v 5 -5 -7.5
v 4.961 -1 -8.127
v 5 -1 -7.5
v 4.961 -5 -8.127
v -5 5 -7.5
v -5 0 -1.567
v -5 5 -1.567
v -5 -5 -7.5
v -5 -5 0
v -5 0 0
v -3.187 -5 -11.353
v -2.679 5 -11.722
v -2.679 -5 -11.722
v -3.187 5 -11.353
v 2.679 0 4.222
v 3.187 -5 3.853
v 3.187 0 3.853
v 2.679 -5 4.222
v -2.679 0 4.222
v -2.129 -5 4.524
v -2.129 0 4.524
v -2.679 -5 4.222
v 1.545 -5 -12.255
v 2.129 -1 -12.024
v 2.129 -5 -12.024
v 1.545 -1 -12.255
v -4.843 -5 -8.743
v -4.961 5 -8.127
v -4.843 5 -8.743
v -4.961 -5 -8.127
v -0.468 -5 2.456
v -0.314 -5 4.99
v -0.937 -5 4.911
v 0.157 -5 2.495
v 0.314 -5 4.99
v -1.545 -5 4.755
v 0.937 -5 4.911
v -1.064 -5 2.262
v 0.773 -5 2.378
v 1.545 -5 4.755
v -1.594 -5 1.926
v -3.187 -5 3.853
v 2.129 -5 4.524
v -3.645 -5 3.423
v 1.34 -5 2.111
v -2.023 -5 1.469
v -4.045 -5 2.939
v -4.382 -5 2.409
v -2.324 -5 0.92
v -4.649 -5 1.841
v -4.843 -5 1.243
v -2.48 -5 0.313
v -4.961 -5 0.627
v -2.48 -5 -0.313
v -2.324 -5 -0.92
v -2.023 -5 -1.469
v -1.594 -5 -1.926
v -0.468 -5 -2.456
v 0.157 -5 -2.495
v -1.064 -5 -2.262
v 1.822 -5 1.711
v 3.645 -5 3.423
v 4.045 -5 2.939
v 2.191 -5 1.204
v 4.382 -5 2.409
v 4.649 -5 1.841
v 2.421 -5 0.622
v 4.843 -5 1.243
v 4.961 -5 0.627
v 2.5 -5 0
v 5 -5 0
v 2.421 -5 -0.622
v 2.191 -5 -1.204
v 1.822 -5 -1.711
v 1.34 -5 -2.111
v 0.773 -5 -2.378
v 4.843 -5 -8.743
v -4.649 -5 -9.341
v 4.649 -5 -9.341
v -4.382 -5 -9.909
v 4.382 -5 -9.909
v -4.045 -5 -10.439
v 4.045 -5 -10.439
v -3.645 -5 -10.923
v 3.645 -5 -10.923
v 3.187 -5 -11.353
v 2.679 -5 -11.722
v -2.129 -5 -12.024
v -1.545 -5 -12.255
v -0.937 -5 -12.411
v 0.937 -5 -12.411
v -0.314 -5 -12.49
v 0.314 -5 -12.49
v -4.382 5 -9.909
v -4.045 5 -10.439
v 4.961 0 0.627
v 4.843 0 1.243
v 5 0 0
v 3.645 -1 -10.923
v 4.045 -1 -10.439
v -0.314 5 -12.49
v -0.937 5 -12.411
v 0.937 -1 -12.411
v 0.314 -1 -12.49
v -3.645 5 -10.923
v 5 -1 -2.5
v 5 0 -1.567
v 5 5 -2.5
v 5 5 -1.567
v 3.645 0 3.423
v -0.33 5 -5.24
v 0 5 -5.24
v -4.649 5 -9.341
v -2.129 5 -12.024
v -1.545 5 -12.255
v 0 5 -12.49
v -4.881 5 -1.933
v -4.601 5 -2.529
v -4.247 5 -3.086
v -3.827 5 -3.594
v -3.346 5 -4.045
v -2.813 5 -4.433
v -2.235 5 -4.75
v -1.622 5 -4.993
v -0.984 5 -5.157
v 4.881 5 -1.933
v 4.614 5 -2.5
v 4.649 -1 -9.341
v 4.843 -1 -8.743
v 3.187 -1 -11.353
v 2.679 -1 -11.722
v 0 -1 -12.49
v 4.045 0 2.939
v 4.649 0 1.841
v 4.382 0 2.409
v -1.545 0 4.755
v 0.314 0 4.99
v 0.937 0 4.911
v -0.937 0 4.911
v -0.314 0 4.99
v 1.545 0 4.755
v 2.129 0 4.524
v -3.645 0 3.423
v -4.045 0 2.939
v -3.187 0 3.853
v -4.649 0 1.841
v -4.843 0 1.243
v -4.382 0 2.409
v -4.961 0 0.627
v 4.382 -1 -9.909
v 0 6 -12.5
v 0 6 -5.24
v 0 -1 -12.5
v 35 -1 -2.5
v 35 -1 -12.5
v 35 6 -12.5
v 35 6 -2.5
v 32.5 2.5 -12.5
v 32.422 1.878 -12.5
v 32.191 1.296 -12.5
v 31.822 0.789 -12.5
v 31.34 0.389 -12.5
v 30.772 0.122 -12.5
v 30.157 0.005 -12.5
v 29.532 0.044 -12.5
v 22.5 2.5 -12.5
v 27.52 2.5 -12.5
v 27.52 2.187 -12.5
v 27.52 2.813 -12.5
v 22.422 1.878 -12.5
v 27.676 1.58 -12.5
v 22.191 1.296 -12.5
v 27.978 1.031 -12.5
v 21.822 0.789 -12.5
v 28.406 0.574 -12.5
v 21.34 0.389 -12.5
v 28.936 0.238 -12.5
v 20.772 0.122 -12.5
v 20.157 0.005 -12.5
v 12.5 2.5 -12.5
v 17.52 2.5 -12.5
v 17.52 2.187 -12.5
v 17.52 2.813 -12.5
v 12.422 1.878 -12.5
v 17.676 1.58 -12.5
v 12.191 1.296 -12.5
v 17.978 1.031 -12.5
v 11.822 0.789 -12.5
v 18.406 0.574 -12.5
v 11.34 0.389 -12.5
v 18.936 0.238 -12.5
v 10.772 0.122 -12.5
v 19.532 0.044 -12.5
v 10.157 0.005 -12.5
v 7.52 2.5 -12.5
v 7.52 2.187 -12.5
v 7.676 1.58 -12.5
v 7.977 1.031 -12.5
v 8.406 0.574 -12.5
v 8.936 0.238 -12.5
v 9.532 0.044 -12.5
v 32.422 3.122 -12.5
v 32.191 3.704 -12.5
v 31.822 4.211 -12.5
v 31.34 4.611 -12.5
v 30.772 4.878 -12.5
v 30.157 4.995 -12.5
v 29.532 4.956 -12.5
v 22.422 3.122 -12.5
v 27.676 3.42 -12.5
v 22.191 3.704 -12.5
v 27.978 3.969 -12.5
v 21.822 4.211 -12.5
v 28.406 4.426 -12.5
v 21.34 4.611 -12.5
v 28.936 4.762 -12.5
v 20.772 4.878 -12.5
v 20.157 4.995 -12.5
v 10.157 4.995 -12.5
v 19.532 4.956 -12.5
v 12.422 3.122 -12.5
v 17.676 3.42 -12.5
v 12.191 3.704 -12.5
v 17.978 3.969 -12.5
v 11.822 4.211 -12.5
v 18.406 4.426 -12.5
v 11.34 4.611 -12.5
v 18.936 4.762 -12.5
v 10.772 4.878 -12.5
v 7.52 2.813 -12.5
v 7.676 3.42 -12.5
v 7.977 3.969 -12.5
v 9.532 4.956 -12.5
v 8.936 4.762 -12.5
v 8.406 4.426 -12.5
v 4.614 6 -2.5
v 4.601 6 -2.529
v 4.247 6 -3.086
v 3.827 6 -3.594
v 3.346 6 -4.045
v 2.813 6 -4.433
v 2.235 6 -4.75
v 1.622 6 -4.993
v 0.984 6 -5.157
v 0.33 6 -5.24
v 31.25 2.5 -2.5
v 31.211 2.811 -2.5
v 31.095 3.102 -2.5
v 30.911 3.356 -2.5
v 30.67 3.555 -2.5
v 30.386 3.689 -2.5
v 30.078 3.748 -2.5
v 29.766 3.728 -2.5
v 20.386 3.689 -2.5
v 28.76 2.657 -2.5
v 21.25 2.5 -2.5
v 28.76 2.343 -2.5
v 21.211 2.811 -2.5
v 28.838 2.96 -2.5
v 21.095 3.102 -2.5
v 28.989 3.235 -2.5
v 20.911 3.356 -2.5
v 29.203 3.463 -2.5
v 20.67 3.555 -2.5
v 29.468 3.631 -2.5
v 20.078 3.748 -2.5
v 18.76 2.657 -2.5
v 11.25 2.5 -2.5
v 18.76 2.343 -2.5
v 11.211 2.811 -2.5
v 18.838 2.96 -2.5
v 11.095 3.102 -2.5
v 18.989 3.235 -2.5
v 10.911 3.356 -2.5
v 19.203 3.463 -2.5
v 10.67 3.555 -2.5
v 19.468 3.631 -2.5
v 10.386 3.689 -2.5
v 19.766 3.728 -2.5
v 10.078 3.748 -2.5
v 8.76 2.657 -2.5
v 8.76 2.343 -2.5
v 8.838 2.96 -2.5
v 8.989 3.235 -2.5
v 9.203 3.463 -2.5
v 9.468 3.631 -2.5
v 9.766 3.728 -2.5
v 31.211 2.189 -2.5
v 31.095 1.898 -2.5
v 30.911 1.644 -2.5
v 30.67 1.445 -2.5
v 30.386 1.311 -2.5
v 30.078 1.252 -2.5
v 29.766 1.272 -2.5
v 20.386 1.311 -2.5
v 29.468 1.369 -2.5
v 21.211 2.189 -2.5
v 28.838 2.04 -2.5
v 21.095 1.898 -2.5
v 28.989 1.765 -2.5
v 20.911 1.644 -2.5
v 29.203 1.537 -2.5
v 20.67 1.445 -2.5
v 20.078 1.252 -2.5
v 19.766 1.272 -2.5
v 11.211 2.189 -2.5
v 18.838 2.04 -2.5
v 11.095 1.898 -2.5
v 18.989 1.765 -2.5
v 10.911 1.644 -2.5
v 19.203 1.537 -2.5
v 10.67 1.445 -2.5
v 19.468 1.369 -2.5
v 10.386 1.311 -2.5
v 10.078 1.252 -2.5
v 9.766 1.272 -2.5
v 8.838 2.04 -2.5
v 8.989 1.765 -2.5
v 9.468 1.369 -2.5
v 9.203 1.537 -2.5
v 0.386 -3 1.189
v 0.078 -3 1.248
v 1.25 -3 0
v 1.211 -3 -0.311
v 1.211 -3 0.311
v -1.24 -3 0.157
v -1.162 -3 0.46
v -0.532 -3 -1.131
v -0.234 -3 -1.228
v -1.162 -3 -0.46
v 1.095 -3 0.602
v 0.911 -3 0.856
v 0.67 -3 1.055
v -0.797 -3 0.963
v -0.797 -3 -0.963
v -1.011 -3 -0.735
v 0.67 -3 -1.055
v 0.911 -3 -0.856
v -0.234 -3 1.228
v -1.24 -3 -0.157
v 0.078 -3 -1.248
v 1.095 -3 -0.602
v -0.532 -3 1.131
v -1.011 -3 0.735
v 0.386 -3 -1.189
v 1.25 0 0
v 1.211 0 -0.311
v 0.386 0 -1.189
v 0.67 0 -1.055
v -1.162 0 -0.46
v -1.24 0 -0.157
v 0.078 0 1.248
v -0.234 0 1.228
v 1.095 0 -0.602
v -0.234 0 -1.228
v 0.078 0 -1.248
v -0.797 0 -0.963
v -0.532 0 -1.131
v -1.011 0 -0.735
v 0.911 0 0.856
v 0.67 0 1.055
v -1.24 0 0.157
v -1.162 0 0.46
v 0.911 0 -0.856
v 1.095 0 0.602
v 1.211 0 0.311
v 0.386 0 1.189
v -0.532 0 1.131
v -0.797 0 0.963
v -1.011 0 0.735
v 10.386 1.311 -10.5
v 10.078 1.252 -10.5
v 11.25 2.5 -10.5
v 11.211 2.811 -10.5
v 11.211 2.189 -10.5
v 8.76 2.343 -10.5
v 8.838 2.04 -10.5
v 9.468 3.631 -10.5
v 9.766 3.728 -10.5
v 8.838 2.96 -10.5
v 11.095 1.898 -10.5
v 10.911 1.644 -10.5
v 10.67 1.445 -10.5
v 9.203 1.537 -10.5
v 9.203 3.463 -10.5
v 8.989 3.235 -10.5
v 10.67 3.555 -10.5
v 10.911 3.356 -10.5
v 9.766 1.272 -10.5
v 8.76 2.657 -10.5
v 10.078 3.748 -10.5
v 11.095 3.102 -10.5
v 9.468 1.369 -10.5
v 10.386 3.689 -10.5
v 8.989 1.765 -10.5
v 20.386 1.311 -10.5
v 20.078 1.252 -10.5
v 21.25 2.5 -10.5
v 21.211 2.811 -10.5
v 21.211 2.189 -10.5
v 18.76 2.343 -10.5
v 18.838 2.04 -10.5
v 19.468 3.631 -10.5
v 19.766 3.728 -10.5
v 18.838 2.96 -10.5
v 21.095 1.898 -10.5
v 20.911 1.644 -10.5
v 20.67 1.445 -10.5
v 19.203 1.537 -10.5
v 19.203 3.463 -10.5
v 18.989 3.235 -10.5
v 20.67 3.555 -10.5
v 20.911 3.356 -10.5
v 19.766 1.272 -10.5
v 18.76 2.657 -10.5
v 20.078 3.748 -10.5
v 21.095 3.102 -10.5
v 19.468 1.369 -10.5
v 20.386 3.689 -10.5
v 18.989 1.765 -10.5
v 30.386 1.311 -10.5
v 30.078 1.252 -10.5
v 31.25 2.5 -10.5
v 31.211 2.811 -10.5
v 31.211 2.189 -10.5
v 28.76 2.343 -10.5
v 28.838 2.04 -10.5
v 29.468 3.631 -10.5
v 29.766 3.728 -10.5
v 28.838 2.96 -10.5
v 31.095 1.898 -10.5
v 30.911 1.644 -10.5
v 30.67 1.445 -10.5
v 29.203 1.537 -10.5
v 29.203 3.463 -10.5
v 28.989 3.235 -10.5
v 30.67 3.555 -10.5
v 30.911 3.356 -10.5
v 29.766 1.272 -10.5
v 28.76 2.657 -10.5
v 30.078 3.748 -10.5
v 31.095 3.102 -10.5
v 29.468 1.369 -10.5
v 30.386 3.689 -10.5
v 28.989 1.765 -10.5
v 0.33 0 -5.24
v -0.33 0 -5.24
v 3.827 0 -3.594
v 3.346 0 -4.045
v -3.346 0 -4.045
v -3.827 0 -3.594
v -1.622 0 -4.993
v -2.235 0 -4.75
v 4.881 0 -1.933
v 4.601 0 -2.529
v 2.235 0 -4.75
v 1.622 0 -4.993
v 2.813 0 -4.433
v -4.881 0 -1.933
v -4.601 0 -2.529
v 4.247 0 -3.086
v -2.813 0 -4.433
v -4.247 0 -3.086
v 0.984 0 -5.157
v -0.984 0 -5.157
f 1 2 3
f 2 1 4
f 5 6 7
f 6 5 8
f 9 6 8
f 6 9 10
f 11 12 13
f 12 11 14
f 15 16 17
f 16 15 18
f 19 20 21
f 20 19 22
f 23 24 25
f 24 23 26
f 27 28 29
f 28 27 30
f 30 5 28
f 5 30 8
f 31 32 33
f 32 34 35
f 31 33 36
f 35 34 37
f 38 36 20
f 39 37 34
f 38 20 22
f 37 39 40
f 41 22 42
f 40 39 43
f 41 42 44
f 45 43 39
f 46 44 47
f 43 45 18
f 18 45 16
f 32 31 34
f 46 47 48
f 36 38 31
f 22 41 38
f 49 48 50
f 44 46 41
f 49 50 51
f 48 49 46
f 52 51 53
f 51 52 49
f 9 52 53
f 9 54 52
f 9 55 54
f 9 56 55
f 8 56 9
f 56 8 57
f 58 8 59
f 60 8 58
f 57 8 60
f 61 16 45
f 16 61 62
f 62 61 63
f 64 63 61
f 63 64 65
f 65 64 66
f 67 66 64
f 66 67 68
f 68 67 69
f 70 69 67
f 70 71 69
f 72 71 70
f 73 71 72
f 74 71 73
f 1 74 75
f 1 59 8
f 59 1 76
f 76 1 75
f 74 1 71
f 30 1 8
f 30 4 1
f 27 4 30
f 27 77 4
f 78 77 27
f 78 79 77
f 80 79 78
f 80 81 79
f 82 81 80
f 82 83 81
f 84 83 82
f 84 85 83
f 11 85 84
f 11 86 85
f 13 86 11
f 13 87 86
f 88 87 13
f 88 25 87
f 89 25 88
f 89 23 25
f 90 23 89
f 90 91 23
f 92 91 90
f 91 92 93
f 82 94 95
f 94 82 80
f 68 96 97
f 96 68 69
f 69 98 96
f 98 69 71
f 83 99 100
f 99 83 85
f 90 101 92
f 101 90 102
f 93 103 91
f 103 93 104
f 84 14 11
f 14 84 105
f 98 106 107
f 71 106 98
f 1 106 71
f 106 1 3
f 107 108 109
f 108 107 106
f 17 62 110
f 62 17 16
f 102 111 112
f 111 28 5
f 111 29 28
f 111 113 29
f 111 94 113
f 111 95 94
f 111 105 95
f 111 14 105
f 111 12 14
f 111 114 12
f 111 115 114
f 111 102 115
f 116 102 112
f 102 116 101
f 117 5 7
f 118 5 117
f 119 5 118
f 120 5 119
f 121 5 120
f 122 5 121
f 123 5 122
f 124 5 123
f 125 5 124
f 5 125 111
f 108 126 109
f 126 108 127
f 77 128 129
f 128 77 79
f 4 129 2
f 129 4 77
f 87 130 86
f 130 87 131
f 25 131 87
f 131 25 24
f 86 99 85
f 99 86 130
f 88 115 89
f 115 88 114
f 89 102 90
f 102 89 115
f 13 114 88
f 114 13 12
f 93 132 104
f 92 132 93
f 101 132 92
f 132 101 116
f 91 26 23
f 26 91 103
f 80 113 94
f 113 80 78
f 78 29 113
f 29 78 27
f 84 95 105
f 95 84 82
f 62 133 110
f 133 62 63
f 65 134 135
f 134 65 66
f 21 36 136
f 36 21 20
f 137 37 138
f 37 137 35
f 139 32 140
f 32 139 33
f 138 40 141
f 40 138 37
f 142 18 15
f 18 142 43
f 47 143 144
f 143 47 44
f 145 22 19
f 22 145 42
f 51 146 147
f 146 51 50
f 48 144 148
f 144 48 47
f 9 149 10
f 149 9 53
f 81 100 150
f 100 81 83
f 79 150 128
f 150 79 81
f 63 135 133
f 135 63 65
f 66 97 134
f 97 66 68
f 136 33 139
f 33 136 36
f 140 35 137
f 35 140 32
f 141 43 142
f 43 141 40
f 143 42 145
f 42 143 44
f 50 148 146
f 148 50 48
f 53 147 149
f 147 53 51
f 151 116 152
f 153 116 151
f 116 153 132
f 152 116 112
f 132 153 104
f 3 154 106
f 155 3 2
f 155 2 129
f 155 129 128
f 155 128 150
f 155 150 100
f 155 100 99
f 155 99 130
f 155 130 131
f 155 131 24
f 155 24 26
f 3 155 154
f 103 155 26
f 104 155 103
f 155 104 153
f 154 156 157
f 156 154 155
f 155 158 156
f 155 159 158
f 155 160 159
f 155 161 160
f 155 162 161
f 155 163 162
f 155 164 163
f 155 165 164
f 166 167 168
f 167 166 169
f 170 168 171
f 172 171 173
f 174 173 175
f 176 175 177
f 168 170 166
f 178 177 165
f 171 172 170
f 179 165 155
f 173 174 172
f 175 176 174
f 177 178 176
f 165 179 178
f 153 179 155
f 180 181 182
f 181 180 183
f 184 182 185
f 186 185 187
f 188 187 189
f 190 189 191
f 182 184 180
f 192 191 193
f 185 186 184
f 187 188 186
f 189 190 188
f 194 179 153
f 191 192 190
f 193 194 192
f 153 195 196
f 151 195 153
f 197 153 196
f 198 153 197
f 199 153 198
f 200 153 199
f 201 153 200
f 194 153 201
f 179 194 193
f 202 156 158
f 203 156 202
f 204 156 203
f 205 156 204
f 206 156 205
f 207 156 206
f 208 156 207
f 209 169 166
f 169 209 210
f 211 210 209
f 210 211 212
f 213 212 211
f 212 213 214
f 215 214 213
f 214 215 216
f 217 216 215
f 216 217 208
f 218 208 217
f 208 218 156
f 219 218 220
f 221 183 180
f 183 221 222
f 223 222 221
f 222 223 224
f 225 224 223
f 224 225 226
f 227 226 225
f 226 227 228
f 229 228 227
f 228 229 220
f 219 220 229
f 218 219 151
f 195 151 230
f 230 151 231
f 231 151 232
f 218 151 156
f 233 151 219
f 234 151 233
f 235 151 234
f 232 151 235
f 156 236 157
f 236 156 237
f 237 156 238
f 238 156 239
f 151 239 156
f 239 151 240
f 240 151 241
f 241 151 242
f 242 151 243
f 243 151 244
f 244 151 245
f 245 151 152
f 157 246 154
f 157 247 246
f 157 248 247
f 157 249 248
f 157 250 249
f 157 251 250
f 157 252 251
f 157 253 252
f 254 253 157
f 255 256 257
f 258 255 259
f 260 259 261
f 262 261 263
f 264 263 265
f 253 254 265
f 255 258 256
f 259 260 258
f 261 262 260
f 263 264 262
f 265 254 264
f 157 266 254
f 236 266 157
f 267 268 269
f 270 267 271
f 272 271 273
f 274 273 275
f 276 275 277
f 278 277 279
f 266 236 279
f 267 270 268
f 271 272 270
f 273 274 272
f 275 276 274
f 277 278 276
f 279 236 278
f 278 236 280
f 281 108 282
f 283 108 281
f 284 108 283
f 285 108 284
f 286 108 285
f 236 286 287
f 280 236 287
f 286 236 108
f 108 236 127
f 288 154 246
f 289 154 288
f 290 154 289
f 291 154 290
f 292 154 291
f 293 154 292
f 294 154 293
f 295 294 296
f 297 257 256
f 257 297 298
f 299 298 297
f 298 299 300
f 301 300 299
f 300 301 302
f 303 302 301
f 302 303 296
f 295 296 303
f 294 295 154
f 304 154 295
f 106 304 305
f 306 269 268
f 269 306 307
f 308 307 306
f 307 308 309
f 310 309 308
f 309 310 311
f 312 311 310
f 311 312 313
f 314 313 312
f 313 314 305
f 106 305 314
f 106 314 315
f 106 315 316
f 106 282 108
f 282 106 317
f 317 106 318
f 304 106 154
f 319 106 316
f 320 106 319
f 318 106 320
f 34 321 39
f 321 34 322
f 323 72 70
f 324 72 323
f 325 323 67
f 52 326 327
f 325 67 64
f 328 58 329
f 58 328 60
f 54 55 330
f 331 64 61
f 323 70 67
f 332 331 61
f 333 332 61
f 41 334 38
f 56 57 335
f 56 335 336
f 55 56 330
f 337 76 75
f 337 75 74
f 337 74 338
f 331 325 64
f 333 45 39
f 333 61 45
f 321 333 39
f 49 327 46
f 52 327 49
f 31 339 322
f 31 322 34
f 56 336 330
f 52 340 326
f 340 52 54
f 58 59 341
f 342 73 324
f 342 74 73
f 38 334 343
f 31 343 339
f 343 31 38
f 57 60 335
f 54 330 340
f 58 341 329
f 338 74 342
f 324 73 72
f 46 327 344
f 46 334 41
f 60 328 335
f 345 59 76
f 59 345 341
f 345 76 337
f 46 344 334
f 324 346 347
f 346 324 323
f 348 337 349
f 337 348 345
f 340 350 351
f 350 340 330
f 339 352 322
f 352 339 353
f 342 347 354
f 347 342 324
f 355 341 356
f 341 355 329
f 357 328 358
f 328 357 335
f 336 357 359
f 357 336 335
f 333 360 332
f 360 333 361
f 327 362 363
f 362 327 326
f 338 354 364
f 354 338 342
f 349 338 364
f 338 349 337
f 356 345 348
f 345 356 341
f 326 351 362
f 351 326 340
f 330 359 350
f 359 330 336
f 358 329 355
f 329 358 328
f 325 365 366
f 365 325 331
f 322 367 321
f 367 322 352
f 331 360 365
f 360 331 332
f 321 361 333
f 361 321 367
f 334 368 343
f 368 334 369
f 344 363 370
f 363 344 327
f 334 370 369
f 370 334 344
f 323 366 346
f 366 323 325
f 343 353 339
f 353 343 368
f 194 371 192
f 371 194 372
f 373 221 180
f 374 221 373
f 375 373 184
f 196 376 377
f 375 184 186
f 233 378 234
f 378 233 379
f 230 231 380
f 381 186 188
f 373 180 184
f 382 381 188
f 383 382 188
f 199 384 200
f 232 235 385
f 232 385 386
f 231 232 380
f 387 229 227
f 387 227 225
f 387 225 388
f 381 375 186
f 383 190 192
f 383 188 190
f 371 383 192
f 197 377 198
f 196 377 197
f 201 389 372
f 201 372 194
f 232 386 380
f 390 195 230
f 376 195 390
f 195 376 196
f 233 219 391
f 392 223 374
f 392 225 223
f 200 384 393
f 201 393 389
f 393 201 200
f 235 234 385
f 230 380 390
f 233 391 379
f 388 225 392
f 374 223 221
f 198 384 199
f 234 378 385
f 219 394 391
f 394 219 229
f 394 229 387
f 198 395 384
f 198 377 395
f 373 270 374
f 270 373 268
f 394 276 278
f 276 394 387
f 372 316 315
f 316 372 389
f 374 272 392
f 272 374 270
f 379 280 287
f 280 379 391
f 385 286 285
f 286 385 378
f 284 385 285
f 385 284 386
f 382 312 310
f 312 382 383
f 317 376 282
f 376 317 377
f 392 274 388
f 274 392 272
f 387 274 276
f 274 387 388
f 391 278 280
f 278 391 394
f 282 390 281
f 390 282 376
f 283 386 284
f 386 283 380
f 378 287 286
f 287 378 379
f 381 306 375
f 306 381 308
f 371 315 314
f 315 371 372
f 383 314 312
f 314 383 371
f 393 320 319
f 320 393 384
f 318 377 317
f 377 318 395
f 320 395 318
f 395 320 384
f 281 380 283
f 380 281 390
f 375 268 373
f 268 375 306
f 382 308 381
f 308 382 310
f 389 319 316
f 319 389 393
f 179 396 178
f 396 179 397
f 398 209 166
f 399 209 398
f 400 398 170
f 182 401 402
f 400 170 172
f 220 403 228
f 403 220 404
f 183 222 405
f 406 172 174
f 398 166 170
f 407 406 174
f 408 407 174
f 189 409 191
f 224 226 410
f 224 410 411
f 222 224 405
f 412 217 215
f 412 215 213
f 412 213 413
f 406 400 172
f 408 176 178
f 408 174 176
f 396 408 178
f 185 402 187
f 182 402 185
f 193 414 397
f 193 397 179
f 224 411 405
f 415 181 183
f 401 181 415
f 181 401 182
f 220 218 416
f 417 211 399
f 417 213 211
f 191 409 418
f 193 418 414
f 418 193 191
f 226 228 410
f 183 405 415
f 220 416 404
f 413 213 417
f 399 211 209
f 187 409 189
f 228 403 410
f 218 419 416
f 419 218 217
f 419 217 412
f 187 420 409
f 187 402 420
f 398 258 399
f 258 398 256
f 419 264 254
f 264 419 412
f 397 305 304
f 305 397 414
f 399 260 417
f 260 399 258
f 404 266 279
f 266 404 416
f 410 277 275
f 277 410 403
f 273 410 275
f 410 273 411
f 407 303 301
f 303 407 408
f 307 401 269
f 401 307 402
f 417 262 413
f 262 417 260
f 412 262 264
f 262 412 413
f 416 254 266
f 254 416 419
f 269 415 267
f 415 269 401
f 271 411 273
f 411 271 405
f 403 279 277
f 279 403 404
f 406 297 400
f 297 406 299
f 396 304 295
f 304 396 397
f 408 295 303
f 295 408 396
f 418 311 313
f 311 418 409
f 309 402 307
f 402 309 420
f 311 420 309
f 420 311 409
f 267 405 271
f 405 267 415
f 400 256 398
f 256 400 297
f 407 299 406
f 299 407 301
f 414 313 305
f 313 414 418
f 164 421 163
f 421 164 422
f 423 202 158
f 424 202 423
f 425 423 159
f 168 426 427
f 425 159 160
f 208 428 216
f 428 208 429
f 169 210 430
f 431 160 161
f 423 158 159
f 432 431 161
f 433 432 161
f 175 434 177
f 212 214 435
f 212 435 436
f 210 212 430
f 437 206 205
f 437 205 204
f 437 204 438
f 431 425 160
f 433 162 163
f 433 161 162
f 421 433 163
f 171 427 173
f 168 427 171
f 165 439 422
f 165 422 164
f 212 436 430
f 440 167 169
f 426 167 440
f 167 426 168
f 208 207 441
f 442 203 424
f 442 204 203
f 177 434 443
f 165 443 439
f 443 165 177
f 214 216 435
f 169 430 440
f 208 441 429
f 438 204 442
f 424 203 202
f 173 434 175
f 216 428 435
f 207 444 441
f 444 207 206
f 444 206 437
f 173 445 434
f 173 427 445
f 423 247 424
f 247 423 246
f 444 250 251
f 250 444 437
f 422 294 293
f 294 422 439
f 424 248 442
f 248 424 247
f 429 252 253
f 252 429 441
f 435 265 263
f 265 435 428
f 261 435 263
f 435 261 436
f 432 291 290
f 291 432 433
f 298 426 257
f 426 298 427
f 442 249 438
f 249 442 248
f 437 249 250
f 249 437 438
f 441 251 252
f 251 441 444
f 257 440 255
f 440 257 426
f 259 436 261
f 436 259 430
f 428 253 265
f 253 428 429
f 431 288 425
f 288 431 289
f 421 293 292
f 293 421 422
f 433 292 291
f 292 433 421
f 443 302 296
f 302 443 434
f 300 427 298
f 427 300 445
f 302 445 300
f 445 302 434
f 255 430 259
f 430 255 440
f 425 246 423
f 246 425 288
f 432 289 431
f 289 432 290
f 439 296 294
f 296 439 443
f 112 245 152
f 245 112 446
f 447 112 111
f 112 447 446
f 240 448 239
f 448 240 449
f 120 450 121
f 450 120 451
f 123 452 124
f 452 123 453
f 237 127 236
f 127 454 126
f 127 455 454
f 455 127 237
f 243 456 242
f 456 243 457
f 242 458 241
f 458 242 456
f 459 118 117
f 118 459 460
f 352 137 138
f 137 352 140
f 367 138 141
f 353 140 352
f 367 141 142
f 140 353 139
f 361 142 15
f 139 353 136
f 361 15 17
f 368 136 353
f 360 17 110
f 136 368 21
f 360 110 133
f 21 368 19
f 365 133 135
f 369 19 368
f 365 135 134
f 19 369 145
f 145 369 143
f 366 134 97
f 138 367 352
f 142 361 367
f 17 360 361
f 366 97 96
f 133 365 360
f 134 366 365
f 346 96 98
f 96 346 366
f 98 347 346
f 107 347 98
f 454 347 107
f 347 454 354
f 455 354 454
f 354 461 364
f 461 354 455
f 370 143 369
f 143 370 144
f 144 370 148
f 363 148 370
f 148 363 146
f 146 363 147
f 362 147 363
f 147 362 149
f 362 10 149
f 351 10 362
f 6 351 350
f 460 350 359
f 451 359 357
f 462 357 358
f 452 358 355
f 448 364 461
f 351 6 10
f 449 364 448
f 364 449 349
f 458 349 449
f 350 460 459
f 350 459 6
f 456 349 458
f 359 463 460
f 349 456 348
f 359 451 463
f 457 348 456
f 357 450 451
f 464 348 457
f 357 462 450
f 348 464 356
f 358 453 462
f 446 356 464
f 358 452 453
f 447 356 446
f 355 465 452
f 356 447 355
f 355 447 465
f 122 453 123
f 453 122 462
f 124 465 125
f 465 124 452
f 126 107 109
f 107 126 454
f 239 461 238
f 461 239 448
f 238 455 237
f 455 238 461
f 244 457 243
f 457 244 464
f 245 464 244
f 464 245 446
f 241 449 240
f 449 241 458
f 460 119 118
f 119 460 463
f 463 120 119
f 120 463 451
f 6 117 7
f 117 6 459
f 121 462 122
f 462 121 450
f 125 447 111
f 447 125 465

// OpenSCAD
// file: openscad-extra/src/countersink.scad
/*
Countersink depression for tapered screw heads.
*/

module make_countersink(d1=0, d2=0, h=0, outer=10, inner=0, $fn=25){
    /*
    d1 = shaft diameter
    d2 = head diameter
    h = height of taper
    outer = height of head mass
    inner = height of shaft mass, including taper
    */
    default_taper_height = 2;
    d1 = d1 ? d1 : 2.5;
    d2 = d2 ? d2 : 5;
    h = h ? h : default_taper_height;
    inner = (inner ? inner : 10) - default_taper_height;
    
    translate([0, 0, -default_taper_height/2])
    union(){
        
        // taper
        cylinder(d1=d1, d2=d2, h=h, center=true, $fn=$fn);
    
        // big top
    	translate([0, 0, h/2])
    	cylinder(d=d2, h=outer, center=false, $fn=$fn);
        
    	// lower bottom
    	translate([0, 0, -h/2-inner])
    	cylinder(d=d1, h=inner, center=false, $fn=$fn);
	}
}

make_countersink(inner=10);

color("blue")
translate([0,2,0])
cylinder(d=2.5, h=20, center=true, $fn=100);
// file: leg_spring_hinge_extender.scad
use <openscad-extra/src/countersink.scad>;

module leg_spring_hinge_extender(){
    bar_length = 35;
    bar_height = 5+5;
    
    difference(){
        union(){
            // main mass
            hull()
            for(i=[0:1])
            translate([0,(5/2 + (bar_height)/2)*i,0])
            cylinder(d=10, h=10, center=true, $fn=50);
            
            // mount bar
            translate([bar_length/2, bar_height - (bar_height-5)/2, -5/2])
            cube([bar_length, bar_height, 5+2], center=true);
        }
        
        // axle hole
        translate([0,0,2.5+5/2])
        make_countersink();
    
        // hub cutout
        color("red")
        translate([0,0,-5])
        cylinder(d=10.5, h=10, center=true, $fn=50);

        // mount holes
        color("red")
        for(i=[0:2])
        translate([10*i+10,7.5 + (bar_height)/2,-5/2])
        rotate([-90,0,0])
        make_countersink(inner=30);
    
    }
}

rotate([-90,0,0])
leg_spring_hinge_extender();
// main file
use <leg_spring_hinge_extender.scad>;

mirror([0,1,0])
rotate([-90,0,0])
leg_spring_hinge_extender();
